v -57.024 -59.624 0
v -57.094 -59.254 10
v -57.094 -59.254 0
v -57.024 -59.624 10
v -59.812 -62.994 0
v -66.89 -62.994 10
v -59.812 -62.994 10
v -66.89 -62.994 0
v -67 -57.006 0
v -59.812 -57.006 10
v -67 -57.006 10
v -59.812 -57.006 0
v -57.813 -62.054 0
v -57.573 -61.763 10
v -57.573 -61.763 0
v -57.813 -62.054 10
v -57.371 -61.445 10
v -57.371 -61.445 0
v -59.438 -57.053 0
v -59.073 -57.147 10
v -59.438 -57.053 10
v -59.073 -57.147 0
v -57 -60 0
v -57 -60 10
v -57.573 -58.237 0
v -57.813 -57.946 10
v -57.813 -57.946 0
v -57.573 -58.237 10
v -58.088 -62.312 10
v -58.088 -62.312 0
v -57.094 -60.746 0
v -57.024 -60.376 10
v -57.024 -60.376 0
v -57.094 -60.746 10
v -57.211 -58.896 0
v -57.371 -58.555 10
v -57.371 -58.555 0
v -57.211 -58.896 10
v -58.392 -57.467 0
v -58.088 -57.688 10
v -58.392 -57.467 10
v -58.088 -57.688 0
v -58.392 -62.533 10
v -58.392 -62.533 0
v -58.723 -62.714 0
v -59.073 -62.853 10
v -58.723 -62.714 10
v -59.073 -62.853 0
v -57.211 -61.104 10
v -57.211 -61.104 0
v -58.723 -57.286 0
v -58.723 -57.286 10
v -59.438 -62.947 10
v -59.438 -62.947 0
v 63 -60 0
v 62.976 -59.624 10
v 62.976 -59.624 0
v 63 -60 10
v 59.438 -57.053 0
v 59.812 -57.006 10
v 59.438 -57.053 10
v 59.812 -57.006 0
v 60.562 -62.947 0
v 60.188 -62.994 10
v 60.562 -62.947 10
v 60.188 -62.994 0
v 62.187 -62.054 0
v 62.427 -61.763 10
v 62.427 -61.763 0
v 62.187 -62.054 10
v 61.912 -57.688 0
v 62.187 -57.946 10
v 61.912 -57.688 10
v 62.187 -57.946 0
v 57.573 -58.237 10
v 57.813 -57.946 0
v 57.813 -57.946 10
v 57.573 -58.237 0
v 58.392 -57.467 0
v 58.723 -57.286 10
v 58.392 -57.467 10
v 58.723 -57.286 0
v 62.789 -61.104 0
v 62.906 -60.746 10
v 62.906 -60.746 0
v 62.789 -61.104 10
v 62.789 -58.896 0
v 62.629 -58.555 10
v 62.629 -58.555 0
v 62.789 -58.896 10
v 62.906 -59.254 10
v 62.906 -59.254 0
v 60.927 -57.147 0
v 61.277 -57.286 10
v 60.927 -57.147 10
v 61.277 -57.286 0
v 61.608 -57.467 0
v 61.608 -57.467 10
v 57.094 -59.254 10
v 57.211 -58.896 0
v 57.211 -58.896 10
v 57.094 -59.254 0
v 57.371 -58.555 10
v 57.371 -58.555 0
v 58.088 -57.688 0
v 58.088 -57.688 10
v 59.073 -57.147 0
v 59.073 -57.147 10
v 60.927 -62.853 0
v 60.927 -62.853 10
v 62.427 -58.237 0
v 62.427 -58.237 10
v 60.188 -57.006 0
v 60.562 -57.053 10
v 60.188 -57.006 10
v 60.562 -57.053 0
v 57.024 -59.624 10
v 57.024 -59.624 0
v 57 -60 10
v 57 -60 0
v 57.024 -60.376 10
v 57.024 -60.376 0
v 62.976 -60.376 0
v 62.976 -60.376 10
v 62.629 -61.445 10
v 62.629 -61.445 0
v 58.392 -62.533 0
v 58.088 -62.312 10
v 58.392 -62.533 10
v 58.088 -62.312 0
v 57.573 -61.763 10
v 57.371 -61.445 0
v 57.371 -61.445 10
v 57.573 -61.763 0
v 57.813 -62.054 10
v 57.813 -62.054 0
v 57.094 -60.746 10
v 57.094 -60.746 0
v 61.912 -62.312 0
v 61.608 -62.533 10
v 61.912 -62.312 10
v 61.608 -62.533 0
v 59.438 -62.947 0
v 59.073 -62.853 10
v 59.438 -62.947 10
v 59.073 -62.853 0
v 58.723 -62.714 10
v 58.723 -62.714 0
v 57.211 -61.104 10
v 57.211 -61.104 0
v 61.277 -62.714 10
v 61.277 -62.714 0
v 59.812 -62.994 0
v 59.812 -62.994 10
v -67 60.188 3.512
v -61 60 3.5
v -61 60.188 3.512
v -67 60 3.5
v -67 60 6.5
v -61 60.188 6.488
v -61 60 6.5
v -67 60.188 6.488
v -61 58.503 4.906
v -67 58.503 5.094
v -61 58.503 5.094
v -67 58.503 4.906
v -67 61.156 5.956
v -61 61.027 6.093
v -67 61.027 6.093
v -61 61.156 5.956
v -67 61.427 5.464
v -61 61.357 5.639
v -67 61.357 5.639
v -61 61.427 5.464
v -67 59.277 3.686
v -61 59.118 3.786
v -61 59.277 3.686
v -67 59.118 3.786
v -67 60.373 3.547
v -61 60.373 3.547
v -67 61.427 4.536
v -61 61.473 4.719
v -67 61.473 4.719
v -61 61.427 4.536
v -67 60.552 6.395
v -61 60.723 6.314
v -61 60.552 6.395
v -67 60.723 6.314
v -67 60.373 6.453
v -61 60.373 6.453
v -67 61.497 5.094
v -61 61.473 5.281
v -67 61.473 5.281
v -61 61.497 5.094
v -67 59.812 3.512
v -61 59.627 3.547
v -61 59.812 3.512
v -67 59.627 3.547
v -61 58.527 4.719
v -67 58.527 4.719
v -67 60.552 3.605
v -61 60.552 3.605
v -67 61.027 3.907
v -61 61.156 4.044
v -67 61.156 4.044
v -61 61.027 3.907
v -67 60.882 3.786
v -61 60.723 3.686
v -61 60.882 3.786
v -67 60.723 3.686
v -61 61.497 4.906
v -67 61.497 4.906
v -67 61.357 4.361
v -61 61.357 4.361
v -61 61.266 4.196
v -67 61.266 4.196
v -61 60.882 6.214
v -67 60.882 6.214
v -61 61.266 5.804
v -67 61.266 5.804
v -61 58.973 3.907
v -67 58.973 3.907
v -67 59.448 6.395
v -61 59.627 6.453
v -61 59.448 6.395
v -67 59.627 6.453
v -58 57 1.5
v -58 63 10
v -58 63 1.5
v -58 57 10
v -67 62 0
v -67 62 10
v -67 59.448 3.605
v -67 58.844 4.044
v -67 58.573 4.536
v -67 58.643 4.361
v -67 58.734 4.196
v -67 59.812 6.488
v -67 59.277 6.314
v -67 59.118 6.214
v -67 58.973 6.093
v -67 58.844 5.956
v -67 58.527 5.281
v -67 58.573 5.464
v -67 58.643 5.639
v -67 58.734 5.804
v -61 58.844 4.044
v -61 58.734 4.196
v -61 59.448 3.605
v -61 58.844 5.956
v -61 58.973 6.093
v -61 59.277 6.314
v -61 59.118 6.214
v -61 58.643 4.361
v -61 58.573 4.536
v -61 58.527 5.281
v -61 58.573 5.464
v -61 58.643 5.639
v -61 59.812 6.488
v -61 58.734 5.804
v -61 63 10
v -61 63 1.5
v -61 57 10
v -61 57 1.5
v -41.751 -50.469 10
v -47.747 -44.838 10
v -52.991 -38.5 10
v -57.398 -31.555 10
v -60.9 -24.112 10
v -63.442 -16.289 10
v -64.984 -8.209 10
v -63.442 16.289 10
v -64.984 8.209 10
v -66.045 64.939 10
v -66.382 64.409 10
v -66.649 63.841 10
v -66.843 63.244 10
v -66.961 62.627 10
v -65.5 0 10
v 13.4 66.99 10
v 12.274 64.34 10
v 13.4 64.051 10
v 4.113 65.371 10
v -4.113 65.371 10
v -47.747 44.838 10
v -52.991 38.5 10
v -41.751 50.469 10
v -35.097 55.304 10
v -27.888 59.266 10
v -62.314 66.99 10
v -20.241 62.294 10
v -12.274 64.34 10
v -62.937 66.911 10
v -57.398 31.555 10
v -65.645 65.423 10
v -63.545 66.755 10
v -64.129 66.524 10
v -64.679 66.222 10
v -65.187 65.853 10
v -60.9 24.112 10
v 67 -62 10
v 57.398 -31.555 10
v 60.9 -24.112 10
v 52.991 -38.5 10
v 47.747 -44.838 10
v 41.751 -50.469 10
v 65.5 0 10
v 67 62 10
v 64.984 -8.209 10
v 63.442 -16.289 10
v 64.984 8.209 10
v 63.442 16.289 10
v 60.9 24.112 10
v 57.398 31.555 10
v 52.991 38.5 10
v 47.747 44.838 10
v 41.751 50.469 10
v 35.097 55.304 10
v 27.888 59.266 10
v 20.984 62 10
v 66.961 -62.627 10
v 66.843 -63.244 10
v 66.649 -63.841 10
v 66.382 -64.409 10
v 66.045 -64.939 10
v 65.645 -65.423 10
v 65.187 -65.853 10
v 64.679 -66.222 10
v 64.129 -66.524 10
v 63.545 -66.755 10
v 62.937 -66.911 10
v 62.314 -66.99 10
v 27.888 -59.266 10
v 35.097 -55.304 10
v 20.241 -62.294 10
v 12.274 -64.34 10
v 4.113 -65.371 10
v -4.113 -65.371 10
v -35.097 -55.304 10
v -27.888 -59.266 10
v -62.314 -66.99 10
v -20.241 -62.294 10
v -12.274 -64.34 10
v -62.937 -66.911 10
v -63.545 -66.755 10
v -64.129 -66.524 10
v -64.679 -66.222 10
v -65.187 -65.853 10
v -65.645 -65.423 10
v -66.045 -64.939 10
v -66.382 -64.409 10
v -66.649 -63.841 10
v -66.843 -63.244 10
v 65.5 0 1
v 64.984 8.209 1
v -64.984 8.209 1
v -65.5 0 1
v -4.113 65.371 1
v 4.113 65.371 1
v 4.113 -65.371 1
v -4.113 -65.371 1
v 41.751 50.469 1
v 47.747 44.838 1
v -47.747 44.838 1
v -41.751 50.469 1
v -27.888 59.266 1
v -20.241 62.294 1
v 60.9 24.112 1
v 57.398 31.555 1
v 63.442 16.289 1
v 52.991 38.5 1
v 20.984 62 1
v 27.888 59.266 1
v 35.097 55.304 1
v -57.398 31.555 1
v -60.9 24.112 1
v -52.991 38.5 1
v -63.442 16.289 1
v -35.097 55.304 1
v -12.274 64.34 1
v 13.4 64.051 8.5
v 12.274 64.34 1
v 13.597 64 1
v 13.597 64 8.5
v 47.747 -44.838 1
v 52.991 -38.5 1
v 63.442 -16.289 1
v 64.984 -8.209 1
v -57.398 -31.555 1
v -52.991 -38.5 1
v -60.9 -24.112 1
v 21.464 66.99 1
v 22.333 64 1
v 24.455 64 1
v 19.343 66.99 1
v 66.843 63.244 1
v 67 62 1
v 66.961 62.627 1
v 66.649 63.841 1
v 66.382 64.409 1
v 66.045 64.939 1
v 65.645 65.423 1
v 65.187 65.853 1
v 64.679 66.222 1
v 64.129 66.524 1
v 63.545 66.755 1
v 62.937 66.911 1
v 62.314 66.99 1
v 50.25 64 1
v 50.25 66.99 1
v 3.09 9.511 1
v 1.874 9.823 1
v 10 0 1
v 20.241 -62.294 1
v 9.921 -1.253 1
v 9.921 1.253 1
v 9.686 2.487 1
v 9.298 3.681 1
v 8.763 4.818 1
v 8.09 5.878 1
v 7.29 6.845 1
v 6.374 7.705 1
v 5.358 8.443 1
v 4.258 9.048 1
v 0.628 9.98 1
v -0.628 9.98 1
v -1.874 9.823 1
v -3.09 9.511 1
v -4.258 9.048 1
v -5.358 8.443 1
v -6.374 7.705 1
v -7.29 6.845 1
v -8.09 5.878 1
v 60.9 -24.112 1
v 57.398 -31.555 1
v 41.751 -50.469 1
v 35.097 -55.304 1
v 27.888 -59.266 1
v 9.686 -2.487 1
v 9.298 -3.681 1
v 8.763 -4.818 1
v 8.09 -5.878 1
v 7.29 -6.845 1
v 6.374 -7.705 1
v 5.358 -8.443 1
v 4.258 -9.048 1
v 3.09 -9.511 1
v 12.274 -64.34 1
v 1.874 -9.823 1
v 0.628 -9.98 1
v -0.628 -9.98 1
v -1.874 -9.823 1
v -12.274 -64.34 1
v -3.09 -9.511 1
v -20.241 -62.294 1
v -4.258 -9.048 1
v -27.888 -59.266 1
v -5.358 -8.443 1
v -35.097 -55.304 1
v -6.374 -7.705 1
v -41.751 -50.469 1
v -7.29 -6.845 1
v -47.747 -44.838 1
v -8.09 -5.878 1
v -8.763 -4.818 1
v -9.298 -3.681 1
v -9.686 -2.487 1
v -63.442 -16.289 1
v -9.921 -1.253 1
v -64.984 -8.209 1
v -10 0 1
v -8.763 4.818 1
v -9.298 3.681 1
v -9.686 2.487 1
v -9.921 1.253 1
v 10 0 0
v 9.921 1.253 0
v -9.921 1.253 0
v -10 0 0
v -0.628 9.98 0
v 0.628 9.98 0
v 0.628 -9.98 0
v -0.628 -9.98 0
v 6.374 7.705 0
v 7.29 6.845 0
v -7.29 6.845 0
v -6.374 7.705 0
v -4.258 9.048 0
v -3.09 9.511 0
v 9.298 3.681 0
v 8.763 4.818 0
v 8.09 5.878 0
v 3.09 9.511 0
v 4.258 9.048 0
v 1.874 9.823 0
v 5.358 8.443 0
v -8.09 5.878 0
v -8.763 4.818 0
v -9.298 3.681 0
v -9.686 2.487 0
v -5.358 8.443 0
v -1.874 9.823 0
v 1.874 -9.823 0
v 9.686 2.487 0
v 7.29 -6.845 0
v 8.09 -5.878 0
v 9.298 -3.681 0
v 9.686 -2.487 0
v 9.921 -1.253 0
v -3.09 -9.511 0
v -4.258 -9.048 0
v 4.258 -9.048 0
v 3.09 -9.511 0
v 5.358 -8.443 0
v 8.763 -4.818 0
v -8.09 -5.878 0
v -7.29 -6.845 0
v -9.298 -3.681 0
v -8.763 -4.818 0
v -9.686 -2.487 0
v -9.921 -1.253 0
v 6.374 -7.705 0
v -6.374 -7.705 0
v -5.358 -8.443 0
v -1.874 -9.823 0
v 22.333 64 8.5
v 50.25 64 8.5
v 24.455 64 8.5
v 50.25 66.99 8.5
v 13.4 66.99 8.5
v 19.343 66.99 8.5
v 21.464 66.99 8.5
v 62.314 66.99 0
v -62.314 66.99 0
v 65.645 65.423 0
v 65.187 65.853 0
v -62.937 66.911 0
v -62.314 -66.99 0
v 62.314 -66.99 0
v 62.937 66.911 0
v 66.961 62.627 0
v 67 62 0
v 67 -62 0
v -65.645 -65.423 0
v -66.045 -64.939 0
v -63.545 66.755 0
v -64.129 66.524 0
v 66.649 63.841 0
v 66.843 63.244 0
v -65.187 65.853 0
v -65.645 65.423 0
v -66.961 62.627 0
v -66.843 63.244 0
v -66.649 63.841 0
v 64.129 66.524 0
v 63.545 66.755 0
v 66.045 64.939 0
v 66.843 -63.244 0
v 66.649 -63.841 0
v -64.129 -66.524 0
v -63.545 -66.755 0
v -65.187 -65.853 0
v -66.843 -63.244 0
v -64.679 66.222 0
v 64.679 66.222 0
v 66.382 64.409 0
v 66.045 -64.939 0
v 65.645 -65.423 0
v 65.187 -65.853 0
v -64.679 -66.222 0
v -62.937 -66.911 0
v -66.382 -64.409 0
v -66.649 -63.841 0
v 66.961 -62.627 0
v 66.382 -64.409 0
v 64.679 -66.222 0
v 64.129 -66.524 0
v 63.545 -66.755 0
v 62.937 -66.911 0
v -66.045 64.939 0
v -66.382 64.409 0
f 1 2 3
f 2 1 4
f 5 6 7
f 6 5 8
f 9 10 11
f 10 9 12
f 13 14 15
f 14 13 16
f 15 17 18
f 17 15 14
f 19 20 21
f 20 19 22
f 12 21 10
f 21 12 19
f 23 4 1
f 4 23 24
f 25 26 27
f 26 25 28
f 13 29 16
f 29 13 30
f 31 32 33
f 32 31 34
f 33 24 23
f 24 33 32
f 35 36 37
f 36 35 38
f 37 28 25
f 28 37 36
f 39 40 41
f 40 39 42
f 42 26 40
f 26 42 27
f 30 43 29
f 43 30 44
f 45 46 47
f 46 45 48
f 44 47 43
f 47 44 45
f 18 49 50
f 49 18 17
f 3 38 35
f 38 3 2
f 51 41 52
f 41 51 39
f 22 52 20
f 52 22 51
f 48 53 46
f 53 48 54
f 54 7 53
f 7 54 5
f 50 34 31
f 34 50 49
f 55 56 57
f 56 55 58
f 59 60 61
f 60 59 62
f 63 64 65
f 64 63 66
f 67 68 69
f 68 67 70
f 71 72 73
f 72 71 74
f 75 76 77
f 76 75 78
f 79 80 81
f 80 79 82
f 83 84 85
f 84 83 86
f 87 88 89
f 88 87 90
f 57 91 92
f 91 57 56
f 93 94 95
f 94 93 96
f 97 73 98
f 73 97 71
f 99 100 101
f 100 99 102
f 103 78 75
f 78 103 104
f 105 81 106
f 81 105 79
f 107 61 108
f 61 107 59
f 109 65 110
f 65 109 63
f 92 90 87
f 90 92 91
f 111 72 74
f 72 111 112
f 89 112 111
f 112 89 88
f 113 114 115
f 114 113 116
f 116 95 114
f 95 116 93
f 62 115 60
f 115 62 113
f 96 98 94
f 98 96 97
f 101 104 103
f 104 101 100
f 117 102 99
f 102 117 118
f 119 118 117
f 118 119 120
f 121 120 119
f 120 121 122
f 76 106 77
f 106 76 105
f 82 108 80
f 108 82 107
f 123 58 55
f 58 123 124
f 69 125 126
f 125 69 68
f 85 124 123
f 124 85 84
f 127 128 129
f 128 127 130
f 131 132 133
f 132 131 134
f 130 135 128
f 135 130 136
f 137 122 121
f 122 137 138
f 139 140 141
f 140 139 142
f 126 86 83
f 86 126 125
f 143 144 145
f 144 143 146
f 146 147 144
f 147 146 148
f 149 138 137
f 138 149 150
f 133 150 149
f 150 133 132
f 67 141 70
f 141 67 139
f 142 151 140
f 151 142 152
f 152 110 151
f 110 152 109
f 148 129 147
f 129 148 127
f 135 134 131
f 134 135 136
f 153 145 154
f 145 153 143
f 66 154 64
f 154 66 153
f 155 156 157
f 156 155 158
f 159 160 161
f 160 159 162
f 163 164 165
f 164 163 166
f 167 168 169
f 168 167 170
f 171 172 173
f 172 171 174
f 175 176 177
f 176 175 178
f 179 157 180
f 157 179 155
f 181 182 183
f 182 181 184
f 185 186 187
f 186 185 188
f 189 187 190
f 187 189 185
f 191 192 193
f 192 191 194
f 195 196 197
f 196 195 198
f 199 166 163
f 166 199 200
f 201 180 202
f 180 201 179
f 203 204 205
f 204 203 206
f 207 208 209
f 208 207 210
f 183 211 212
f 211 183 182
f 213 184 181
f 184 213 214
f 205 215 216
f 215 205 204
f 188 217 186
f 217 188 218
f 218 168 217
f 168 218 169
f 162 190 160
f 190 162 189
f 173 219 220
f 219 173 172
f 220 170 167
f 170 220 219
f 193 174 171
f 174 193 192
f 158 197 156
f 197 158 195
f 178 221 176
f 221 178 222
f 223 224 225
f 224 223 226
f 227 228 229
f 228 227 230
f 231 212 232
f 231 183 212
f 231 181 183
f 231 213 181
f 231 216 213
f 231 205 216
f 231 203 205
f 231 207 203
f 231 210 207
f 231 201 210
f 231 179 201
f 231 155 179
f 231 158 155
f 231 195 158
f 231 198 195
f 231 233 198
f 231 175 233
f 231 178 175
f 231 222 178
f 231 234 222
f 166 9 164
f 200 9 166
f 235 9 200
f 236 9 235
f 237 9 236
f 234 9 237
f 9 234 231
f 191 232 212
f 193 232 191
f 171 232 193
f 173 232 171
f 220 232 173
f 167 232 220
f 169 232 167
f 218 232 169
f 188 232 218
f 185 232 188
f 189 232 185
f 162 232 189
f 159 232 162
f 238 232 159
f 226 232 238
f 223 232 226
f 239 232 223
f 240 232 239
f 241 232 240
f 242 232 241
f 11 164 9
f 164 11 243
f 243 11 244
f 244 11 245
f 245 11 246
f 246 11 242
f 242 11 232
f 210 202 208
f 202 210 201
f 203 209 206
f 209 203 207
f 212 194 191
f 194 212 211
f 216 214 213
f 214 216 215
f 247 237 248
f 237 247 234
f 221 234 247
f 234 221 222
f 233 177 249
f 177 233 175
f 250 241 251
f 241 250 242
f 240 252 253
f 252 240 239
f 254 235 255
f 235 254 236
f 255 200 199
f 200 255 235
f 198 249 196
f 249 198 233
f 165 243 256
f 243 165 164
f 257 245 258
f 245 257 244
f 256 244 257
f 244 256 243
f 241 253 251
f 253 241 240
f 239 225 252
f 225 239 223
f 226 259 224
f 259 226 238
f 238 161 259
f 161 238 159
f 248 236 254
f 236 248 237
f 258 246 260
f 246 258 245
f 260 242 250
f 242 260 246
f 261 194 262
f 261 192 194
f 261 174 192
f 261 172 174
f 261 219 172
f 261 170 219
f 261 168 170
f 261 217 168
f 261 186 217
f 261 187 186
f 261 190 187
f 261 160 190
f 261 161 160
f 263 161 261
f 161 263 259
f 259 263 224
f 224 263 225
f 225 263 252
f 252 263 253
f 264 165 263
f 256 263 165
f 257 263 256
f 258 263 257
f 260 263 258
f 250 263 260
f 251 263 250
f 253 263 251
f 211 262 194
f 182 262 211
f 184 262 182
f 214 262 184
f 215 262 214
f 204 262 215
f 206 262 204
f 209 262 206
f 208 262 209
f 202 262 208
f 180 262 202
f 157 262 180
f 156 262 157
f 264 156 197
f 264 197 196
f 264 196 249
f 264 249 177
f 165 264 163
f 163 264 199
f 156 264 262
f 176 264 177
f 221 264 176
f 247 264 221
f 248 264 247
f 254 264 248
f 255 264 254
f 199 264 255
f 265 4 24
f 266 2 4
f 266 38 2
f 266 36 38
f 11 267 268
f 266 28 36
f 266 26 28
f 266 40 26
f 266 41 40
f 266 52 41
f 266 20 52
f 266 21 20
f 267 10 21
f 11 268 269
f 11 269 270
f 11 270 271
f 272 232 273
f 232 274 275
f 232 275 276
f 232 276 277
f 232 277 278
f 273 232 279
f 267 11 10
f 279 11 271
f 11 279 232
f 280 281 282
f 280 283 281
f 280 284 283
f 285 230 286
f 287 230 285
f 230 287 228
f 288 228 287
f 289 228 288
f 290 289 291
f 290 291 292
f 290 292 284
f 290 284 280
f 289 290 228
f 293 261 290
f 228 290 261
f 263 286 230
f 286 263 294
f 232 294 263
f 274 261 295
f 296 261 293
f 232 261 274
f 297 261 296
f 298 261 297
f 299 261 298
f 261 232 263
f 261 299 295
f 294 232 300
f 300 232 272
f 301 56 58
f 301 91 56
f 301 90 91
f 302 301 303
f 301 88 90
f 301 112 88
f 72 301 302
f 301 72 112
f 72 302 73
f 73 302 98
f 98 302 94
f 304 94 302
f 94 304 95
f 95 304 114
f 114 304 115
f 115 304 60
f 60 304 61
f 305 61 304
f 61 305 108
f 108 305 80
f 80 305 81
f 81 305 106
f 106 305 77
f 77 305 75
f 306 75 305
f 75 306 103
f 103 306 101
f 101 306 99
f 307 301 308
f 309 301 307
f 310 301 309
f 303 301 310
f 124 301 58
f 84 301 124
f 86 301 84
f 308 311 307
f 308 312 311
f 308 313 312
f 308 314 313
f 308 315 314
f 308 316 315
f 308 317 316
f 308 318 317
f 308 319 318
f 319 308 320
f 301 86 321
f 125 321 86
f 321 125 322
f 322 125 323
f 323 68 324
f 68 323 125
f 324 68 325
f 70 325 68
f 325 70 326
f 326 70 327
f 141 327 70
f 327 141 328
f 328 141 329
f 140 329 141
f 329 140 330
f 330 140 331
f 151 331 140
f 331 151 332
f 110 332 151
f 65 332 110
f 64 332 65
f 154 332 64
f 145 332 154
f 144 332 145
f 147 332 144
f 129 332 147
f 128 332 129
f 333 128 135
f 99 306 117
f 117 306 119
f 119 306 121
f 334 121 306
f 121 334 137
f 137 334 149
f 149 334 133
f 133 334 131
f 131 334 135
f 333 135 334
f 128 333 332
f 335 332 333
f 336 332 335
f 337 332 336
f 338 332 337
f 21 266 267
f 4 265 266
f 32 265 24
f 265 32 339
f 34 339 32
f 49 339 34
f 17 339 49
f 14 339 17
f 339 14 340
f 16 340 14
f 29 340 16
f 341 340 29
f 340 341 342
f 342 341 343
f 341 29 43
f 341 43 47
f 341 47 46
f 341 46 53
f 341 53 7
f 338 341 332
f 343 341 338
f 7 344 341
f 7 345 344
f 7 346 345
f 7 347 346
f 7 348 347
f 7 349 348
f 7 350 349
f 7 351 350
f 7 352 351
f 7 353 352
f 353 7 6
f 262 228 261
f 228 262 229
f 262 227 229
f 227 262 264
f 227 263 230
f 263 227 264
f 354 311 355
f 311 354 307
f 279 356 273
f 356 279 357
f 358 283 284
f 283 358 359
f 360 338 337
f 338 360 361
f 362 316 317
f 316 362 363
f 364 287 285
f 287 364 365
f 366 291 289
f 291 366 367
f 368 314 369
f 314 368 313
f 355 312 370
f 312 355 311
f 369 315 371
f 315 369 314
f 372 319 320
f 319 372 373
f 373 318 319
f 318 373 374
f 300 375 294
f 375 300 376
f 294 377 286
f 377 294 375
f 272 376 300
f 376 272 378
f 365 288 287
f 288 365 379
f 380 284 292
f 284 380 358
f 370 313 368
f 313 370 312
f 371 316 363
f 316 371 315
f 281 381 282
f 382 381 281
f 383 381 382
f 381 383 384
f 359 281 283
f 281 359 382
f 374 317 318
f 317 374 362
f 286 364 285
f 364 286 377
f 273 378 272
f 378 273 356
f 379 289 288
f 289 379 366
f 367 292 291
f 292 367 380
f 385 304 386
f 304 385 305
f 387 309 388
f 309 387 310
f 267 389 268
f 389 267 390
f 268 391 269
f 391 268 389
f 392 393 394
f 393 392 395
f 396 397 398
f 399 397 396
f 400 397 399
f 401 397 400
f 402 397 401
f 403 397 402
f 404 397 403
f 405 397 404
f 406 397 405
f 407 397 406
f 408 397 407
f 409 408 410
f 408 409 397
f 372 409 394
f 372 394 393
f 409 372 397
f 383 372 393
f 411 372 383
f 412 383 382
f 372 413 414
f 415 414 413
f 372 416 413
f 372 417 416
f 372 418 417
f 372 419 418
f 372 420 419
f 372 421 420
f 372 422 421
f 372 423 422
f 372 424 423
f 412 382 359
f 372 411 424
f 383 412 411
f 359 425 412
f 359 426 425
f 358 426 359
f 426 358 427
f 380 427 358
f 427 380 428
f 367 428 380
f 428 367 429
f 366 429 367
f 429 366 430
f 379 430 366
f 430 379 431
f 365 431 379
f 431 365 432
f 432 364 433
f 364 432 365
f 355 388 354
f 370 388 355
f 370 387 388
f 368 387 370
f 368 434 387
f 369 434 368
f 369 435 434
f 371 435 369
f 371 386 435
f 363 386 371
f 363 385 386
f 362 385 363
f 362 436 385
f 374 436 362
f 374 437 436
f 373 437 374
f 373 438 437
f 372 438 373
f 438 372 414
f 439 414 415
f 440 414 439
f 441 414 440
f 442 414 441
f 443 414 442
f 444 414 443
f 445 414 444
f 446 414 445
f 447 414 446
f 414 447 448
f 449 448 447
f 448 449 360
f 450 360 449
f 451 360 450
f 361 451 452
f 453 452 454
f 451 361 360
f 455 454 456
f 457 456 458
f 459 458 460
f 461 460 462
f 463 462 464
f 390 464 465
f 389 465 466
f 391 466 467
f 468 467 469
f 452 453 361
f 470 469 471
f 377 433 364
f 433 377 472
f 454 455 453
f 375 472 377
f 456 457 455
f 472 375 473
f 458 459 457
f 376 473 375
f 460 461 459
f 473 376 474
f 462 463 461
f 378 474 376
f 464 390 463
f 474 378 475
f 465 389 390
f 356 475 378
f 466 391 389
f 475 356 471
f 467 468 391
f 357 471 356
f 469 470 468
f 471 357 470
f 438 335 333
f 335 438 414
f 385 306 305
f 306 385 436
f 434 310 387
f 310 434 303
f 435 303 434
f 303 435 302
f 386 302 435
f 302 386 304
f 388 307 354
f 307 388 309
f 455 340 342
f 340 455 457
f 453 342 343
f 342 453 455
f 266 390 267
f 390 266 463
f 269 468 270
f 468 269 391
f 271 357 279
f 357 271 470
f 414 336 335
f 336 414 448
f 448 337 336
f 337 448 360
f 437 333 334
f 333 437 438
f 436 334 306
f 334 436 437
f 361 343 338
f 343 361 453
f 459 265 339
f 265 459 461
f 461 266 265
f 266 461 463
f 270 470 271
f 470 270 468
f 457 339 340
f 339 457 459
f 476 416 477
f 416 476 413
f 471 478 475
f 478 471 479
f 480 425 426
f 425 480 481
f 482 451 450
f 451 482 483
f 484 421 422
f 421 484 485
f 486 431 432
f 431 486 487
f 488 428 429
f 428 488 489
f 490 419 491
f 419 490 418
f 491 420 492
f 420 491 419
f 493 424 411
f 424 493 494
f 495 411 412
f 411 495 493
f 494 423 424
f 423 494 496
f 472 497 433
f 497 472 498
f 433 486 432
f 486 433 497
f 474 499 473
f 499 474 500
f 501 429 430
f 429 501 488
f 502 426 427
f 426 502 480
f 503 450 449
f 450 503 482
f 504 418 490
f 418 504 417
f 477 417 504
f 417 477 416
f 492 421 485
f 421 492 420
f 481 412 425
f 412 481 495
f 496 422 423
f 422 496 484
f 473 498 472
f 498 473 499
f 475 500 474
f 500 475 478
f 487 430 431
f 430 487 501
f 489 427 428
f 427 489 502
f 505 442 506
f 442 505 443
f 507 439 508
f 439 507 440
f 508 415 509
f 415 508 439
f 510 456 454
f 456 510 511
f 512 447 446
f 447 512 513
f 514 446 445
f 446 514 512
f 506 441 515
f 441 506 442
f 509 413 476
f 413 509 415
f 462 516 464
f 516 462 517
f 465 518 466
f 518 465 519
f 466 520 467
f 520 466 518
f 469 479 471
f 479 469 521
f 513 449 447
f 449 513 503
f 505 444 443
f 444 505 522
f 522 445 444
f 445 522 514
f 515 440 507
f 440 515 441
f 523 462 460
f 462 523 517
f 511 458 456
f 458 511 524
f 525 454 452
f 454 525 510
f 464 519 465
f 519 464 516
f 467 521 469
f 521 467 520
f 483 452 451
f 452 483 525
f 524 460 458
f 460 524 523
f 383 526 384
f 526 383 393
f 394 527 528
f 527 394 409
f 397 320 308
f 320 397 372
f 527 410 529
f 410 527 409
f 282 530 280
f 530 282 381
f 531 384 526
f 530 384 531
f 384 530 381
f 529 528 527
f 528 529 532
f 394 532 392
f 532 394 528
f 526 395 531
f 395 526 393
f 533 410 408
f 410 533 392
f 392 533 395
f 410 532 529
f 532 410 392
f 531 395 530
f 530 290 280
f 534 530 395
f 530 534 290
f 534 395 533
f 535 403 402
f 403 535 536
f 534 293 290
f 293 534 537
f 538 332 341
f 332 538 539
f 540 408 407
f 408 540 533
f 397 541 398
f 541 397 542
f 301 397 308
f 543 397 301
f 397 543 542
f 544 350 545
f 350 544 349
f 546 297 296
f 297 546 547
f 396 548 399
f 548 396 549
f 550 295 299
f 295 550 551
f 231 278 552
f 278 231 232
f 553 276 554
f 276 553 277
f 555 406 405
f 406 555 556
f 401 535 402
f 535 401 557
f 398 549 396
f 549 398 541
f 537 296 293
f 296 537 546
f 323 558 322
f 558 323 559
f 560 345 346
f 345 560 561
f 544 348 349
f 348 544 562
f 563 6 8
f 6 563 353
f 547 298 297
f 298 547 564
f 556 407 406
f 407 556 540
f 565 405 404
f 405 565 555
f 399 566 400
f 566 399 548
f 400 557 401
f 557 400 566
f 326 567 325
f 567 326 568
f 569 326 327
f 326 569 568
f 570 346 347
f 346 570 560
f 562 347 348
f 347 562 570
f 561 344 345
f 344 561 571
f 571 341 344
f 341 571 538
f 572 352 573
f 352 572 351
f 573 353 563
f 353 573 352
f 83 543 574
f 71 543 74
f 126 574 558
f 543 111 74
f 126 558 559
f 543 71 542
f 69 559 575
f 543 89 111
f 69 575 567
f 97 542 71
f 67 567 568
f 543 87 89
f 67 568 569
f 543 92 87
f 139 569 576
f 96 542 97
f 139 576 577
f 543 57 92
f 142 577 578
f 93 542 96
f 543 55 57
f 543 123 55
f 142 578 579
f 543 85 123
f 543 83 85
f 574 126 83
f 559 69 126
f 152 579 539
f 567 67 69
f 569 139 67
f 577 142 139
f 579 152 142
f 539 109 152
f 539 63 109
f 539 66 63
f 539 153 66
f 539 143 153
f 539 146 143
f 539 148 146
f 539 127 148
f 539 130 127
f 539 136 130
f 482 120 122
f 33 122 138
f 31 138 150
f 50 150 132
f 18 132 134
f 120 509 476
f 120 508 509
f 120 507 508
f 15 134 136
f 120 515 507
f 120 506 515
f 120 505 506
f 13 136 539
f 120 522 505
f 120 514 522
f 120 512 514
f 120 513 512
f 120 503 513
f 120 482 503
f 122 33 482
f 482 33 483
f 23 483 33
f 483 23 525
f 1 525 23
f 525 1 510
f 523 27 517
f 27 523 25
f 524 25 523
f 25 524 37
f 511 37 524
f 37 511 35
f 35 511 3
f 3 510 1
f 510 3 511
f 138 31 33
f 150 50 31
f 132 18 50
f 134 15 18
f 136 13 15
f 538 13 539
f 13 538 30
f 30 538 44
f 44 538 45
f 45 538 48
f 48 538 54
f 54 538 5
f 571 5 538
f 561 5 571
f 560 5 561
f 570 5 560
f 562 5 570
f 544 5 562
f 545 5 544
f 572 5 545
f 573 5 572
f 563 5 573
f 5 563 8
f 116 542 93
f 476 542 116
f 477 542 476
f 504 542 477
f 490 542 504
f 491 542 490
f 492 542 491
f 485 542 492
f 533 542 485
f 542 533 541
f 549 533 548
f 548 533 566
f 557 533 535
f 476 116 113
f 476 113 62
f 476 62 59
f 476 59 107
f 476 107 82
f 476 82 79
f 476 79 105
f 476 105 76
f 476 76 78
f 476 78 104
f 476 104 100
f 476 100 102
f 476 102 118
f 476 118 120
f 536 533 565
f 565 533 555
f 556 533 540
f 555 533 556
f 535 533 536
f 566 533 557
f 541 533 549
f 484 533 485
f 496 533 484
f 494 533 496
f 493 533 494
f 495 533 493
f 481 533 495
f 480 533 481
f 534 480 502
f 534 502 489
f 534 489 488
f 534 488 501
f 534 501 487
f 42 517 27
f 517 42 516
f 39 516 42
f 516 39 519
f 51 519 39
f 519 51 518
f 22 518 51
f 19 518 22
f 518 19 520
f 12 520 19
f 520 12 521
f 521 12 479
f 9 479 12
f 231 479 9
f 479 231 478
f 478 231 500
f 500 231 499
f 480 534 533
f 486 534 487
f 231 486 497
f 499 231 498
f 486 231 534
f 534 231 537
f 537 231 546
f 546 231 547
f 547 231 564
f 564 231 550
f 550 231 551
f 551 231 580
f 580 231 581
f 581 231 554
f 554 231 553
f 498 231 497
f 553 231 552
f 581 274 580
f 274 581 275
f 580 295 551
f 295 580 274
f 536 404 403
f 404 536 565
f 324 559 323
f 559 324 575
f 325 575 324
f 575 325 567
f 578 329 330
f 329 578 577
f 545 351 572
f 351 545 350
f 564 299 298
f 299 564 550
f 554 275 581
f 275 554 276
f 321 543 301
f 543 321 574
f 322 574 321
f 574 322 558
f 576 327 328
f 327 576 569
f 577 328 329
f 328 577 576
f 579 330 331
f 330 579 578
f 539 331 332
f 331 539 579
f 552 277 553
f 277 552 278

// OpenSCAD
$fn = 50;


difference() {
	union() {
		translate(v = [0, 0, 0]) {
			rotate(a = [0, 0, 0]) {
				hull() {
					translate(v = [-62.0000000000, 62.0000000000, 0]) {
						rotate(a = [0, 0, 0]) {
							translate(v = [0, 0, 0]) {
								rotate(a = [0, 0, 0]) {
									cylinder(h = 10, r = 5);
								}
							}
						}
					}
					translate(v = [62.0000000000, 62.0000000000, 0]) {
						rotate(a = [0, 0, 0]) {
							translate(v = [0, 0, 0]) {
								rotate(a = [0, 0, 0]) {
									cylinder(h = 10, r = 5);
								}
							}
						}
					}
					translate(v = [-62.0000000000, -62.0000000000, 0]) {
						rotate(a = [0, 0, 0]) {
							translate(v = [0, 0, 0]) {
								rotate(a = [0, 0, 0]) {
									cylinder(h = 10, r = 5);
								}
							}
						}
					}
					translate(v = [62.0000000000, -62.0000000000, 0]) {
						rotate(a = [0, 0, 0]) {
							translate(v = [0, 0, 0]) {
								rotate(a = [0, 0, 0]) {
									cylinder(h = 10, r = 5);
								}
							}
						}
					}
				}
			}
		}
	}
	union() {
		translate(v = [-67.5000000000, -60.0000000000, -125]) {
			rotate(a = [0, 0, 0]) {
				hull() {
					translate(v = [7.5000000000, 0, 0]) {
						rotate(a = [0, 0, 0]) {
							translate(v = [0, 0, 0]) {
								rotate(a = [0, 0, 0]) {
									cylinder(h = 250, r = 3.0000000000);
								}
							}
						}
					}
					translate(v = [-7.5000000000, 0, 0]) {
						rotate(a = [0, 0, 0]) {
							translate(v = [0, 0, 0]) {
								rotate(a = [0, 0, 0]) {
									cylinder(h = 250, r = 3.0000000000);
								}
							}
						}
					}
				}
			}
		}
		translate(v = [60.0000000000, -60.0000000000, -125.0000000000]) {
			rotate(a = [0, 0, 0]) {
				cylinder(h = 250, r = 3.0000000000);
			}
		}
		translate(v = [-67.0000000000, 60.0000000000, 5.0000000000]) {
			rotate(a = [0, 90, 0]) {
				cylinder(h = 9, r = 1.5000000000);
			}
		}
		translate(v = [-61.0000000000, 57.0000000000, 1.5000000000]) {
			rotate(a = [0, 0, 0]) {
				cube(size = [3, 6, 8.5000000000]);
			}
		}
		translate(v = [0, 0, 1.0000000000]) {
			rotate(a = [0, 0, 0]) {
				cylinder(h = 12, r = 65.5000000000);
			}
		}
		translate(v = [0, 0, -5.0000000000]) {
			rotate(a = [0, 0, 0]) {
				cylinder(h = 10, r = 10.0000000000);
			}
		}
		translate(v = [0.0000000000, 62.0000000000, 1]) {
			rotate(a = [0, 0, 0]) {
				cube(size = [67.0000000000, 2, 12]);
			}
		}
		translate(v = [50.2500000000, 62.0000000000, 1]) {
			rotate(a = [0, 0, 0]) {
				cube(size = [16.7500000000, 5, 12]);
			}
		}
		translate(v = [13.4000000000, 62.0000000000, 8.5000000000]) {
			rotate(a = [0, 0, 0]) {
				cube(size = [53.6000000000, 5, 1.5000000000]);
			}
		}
		translate(v = [18.5833333333, 67.7500000000, 1]) {
			rotate(a = [0, 0, -45]) {
				cube(size = [7.5000000000, 1.5000000000, 12]);
			}
		}
	}
}
